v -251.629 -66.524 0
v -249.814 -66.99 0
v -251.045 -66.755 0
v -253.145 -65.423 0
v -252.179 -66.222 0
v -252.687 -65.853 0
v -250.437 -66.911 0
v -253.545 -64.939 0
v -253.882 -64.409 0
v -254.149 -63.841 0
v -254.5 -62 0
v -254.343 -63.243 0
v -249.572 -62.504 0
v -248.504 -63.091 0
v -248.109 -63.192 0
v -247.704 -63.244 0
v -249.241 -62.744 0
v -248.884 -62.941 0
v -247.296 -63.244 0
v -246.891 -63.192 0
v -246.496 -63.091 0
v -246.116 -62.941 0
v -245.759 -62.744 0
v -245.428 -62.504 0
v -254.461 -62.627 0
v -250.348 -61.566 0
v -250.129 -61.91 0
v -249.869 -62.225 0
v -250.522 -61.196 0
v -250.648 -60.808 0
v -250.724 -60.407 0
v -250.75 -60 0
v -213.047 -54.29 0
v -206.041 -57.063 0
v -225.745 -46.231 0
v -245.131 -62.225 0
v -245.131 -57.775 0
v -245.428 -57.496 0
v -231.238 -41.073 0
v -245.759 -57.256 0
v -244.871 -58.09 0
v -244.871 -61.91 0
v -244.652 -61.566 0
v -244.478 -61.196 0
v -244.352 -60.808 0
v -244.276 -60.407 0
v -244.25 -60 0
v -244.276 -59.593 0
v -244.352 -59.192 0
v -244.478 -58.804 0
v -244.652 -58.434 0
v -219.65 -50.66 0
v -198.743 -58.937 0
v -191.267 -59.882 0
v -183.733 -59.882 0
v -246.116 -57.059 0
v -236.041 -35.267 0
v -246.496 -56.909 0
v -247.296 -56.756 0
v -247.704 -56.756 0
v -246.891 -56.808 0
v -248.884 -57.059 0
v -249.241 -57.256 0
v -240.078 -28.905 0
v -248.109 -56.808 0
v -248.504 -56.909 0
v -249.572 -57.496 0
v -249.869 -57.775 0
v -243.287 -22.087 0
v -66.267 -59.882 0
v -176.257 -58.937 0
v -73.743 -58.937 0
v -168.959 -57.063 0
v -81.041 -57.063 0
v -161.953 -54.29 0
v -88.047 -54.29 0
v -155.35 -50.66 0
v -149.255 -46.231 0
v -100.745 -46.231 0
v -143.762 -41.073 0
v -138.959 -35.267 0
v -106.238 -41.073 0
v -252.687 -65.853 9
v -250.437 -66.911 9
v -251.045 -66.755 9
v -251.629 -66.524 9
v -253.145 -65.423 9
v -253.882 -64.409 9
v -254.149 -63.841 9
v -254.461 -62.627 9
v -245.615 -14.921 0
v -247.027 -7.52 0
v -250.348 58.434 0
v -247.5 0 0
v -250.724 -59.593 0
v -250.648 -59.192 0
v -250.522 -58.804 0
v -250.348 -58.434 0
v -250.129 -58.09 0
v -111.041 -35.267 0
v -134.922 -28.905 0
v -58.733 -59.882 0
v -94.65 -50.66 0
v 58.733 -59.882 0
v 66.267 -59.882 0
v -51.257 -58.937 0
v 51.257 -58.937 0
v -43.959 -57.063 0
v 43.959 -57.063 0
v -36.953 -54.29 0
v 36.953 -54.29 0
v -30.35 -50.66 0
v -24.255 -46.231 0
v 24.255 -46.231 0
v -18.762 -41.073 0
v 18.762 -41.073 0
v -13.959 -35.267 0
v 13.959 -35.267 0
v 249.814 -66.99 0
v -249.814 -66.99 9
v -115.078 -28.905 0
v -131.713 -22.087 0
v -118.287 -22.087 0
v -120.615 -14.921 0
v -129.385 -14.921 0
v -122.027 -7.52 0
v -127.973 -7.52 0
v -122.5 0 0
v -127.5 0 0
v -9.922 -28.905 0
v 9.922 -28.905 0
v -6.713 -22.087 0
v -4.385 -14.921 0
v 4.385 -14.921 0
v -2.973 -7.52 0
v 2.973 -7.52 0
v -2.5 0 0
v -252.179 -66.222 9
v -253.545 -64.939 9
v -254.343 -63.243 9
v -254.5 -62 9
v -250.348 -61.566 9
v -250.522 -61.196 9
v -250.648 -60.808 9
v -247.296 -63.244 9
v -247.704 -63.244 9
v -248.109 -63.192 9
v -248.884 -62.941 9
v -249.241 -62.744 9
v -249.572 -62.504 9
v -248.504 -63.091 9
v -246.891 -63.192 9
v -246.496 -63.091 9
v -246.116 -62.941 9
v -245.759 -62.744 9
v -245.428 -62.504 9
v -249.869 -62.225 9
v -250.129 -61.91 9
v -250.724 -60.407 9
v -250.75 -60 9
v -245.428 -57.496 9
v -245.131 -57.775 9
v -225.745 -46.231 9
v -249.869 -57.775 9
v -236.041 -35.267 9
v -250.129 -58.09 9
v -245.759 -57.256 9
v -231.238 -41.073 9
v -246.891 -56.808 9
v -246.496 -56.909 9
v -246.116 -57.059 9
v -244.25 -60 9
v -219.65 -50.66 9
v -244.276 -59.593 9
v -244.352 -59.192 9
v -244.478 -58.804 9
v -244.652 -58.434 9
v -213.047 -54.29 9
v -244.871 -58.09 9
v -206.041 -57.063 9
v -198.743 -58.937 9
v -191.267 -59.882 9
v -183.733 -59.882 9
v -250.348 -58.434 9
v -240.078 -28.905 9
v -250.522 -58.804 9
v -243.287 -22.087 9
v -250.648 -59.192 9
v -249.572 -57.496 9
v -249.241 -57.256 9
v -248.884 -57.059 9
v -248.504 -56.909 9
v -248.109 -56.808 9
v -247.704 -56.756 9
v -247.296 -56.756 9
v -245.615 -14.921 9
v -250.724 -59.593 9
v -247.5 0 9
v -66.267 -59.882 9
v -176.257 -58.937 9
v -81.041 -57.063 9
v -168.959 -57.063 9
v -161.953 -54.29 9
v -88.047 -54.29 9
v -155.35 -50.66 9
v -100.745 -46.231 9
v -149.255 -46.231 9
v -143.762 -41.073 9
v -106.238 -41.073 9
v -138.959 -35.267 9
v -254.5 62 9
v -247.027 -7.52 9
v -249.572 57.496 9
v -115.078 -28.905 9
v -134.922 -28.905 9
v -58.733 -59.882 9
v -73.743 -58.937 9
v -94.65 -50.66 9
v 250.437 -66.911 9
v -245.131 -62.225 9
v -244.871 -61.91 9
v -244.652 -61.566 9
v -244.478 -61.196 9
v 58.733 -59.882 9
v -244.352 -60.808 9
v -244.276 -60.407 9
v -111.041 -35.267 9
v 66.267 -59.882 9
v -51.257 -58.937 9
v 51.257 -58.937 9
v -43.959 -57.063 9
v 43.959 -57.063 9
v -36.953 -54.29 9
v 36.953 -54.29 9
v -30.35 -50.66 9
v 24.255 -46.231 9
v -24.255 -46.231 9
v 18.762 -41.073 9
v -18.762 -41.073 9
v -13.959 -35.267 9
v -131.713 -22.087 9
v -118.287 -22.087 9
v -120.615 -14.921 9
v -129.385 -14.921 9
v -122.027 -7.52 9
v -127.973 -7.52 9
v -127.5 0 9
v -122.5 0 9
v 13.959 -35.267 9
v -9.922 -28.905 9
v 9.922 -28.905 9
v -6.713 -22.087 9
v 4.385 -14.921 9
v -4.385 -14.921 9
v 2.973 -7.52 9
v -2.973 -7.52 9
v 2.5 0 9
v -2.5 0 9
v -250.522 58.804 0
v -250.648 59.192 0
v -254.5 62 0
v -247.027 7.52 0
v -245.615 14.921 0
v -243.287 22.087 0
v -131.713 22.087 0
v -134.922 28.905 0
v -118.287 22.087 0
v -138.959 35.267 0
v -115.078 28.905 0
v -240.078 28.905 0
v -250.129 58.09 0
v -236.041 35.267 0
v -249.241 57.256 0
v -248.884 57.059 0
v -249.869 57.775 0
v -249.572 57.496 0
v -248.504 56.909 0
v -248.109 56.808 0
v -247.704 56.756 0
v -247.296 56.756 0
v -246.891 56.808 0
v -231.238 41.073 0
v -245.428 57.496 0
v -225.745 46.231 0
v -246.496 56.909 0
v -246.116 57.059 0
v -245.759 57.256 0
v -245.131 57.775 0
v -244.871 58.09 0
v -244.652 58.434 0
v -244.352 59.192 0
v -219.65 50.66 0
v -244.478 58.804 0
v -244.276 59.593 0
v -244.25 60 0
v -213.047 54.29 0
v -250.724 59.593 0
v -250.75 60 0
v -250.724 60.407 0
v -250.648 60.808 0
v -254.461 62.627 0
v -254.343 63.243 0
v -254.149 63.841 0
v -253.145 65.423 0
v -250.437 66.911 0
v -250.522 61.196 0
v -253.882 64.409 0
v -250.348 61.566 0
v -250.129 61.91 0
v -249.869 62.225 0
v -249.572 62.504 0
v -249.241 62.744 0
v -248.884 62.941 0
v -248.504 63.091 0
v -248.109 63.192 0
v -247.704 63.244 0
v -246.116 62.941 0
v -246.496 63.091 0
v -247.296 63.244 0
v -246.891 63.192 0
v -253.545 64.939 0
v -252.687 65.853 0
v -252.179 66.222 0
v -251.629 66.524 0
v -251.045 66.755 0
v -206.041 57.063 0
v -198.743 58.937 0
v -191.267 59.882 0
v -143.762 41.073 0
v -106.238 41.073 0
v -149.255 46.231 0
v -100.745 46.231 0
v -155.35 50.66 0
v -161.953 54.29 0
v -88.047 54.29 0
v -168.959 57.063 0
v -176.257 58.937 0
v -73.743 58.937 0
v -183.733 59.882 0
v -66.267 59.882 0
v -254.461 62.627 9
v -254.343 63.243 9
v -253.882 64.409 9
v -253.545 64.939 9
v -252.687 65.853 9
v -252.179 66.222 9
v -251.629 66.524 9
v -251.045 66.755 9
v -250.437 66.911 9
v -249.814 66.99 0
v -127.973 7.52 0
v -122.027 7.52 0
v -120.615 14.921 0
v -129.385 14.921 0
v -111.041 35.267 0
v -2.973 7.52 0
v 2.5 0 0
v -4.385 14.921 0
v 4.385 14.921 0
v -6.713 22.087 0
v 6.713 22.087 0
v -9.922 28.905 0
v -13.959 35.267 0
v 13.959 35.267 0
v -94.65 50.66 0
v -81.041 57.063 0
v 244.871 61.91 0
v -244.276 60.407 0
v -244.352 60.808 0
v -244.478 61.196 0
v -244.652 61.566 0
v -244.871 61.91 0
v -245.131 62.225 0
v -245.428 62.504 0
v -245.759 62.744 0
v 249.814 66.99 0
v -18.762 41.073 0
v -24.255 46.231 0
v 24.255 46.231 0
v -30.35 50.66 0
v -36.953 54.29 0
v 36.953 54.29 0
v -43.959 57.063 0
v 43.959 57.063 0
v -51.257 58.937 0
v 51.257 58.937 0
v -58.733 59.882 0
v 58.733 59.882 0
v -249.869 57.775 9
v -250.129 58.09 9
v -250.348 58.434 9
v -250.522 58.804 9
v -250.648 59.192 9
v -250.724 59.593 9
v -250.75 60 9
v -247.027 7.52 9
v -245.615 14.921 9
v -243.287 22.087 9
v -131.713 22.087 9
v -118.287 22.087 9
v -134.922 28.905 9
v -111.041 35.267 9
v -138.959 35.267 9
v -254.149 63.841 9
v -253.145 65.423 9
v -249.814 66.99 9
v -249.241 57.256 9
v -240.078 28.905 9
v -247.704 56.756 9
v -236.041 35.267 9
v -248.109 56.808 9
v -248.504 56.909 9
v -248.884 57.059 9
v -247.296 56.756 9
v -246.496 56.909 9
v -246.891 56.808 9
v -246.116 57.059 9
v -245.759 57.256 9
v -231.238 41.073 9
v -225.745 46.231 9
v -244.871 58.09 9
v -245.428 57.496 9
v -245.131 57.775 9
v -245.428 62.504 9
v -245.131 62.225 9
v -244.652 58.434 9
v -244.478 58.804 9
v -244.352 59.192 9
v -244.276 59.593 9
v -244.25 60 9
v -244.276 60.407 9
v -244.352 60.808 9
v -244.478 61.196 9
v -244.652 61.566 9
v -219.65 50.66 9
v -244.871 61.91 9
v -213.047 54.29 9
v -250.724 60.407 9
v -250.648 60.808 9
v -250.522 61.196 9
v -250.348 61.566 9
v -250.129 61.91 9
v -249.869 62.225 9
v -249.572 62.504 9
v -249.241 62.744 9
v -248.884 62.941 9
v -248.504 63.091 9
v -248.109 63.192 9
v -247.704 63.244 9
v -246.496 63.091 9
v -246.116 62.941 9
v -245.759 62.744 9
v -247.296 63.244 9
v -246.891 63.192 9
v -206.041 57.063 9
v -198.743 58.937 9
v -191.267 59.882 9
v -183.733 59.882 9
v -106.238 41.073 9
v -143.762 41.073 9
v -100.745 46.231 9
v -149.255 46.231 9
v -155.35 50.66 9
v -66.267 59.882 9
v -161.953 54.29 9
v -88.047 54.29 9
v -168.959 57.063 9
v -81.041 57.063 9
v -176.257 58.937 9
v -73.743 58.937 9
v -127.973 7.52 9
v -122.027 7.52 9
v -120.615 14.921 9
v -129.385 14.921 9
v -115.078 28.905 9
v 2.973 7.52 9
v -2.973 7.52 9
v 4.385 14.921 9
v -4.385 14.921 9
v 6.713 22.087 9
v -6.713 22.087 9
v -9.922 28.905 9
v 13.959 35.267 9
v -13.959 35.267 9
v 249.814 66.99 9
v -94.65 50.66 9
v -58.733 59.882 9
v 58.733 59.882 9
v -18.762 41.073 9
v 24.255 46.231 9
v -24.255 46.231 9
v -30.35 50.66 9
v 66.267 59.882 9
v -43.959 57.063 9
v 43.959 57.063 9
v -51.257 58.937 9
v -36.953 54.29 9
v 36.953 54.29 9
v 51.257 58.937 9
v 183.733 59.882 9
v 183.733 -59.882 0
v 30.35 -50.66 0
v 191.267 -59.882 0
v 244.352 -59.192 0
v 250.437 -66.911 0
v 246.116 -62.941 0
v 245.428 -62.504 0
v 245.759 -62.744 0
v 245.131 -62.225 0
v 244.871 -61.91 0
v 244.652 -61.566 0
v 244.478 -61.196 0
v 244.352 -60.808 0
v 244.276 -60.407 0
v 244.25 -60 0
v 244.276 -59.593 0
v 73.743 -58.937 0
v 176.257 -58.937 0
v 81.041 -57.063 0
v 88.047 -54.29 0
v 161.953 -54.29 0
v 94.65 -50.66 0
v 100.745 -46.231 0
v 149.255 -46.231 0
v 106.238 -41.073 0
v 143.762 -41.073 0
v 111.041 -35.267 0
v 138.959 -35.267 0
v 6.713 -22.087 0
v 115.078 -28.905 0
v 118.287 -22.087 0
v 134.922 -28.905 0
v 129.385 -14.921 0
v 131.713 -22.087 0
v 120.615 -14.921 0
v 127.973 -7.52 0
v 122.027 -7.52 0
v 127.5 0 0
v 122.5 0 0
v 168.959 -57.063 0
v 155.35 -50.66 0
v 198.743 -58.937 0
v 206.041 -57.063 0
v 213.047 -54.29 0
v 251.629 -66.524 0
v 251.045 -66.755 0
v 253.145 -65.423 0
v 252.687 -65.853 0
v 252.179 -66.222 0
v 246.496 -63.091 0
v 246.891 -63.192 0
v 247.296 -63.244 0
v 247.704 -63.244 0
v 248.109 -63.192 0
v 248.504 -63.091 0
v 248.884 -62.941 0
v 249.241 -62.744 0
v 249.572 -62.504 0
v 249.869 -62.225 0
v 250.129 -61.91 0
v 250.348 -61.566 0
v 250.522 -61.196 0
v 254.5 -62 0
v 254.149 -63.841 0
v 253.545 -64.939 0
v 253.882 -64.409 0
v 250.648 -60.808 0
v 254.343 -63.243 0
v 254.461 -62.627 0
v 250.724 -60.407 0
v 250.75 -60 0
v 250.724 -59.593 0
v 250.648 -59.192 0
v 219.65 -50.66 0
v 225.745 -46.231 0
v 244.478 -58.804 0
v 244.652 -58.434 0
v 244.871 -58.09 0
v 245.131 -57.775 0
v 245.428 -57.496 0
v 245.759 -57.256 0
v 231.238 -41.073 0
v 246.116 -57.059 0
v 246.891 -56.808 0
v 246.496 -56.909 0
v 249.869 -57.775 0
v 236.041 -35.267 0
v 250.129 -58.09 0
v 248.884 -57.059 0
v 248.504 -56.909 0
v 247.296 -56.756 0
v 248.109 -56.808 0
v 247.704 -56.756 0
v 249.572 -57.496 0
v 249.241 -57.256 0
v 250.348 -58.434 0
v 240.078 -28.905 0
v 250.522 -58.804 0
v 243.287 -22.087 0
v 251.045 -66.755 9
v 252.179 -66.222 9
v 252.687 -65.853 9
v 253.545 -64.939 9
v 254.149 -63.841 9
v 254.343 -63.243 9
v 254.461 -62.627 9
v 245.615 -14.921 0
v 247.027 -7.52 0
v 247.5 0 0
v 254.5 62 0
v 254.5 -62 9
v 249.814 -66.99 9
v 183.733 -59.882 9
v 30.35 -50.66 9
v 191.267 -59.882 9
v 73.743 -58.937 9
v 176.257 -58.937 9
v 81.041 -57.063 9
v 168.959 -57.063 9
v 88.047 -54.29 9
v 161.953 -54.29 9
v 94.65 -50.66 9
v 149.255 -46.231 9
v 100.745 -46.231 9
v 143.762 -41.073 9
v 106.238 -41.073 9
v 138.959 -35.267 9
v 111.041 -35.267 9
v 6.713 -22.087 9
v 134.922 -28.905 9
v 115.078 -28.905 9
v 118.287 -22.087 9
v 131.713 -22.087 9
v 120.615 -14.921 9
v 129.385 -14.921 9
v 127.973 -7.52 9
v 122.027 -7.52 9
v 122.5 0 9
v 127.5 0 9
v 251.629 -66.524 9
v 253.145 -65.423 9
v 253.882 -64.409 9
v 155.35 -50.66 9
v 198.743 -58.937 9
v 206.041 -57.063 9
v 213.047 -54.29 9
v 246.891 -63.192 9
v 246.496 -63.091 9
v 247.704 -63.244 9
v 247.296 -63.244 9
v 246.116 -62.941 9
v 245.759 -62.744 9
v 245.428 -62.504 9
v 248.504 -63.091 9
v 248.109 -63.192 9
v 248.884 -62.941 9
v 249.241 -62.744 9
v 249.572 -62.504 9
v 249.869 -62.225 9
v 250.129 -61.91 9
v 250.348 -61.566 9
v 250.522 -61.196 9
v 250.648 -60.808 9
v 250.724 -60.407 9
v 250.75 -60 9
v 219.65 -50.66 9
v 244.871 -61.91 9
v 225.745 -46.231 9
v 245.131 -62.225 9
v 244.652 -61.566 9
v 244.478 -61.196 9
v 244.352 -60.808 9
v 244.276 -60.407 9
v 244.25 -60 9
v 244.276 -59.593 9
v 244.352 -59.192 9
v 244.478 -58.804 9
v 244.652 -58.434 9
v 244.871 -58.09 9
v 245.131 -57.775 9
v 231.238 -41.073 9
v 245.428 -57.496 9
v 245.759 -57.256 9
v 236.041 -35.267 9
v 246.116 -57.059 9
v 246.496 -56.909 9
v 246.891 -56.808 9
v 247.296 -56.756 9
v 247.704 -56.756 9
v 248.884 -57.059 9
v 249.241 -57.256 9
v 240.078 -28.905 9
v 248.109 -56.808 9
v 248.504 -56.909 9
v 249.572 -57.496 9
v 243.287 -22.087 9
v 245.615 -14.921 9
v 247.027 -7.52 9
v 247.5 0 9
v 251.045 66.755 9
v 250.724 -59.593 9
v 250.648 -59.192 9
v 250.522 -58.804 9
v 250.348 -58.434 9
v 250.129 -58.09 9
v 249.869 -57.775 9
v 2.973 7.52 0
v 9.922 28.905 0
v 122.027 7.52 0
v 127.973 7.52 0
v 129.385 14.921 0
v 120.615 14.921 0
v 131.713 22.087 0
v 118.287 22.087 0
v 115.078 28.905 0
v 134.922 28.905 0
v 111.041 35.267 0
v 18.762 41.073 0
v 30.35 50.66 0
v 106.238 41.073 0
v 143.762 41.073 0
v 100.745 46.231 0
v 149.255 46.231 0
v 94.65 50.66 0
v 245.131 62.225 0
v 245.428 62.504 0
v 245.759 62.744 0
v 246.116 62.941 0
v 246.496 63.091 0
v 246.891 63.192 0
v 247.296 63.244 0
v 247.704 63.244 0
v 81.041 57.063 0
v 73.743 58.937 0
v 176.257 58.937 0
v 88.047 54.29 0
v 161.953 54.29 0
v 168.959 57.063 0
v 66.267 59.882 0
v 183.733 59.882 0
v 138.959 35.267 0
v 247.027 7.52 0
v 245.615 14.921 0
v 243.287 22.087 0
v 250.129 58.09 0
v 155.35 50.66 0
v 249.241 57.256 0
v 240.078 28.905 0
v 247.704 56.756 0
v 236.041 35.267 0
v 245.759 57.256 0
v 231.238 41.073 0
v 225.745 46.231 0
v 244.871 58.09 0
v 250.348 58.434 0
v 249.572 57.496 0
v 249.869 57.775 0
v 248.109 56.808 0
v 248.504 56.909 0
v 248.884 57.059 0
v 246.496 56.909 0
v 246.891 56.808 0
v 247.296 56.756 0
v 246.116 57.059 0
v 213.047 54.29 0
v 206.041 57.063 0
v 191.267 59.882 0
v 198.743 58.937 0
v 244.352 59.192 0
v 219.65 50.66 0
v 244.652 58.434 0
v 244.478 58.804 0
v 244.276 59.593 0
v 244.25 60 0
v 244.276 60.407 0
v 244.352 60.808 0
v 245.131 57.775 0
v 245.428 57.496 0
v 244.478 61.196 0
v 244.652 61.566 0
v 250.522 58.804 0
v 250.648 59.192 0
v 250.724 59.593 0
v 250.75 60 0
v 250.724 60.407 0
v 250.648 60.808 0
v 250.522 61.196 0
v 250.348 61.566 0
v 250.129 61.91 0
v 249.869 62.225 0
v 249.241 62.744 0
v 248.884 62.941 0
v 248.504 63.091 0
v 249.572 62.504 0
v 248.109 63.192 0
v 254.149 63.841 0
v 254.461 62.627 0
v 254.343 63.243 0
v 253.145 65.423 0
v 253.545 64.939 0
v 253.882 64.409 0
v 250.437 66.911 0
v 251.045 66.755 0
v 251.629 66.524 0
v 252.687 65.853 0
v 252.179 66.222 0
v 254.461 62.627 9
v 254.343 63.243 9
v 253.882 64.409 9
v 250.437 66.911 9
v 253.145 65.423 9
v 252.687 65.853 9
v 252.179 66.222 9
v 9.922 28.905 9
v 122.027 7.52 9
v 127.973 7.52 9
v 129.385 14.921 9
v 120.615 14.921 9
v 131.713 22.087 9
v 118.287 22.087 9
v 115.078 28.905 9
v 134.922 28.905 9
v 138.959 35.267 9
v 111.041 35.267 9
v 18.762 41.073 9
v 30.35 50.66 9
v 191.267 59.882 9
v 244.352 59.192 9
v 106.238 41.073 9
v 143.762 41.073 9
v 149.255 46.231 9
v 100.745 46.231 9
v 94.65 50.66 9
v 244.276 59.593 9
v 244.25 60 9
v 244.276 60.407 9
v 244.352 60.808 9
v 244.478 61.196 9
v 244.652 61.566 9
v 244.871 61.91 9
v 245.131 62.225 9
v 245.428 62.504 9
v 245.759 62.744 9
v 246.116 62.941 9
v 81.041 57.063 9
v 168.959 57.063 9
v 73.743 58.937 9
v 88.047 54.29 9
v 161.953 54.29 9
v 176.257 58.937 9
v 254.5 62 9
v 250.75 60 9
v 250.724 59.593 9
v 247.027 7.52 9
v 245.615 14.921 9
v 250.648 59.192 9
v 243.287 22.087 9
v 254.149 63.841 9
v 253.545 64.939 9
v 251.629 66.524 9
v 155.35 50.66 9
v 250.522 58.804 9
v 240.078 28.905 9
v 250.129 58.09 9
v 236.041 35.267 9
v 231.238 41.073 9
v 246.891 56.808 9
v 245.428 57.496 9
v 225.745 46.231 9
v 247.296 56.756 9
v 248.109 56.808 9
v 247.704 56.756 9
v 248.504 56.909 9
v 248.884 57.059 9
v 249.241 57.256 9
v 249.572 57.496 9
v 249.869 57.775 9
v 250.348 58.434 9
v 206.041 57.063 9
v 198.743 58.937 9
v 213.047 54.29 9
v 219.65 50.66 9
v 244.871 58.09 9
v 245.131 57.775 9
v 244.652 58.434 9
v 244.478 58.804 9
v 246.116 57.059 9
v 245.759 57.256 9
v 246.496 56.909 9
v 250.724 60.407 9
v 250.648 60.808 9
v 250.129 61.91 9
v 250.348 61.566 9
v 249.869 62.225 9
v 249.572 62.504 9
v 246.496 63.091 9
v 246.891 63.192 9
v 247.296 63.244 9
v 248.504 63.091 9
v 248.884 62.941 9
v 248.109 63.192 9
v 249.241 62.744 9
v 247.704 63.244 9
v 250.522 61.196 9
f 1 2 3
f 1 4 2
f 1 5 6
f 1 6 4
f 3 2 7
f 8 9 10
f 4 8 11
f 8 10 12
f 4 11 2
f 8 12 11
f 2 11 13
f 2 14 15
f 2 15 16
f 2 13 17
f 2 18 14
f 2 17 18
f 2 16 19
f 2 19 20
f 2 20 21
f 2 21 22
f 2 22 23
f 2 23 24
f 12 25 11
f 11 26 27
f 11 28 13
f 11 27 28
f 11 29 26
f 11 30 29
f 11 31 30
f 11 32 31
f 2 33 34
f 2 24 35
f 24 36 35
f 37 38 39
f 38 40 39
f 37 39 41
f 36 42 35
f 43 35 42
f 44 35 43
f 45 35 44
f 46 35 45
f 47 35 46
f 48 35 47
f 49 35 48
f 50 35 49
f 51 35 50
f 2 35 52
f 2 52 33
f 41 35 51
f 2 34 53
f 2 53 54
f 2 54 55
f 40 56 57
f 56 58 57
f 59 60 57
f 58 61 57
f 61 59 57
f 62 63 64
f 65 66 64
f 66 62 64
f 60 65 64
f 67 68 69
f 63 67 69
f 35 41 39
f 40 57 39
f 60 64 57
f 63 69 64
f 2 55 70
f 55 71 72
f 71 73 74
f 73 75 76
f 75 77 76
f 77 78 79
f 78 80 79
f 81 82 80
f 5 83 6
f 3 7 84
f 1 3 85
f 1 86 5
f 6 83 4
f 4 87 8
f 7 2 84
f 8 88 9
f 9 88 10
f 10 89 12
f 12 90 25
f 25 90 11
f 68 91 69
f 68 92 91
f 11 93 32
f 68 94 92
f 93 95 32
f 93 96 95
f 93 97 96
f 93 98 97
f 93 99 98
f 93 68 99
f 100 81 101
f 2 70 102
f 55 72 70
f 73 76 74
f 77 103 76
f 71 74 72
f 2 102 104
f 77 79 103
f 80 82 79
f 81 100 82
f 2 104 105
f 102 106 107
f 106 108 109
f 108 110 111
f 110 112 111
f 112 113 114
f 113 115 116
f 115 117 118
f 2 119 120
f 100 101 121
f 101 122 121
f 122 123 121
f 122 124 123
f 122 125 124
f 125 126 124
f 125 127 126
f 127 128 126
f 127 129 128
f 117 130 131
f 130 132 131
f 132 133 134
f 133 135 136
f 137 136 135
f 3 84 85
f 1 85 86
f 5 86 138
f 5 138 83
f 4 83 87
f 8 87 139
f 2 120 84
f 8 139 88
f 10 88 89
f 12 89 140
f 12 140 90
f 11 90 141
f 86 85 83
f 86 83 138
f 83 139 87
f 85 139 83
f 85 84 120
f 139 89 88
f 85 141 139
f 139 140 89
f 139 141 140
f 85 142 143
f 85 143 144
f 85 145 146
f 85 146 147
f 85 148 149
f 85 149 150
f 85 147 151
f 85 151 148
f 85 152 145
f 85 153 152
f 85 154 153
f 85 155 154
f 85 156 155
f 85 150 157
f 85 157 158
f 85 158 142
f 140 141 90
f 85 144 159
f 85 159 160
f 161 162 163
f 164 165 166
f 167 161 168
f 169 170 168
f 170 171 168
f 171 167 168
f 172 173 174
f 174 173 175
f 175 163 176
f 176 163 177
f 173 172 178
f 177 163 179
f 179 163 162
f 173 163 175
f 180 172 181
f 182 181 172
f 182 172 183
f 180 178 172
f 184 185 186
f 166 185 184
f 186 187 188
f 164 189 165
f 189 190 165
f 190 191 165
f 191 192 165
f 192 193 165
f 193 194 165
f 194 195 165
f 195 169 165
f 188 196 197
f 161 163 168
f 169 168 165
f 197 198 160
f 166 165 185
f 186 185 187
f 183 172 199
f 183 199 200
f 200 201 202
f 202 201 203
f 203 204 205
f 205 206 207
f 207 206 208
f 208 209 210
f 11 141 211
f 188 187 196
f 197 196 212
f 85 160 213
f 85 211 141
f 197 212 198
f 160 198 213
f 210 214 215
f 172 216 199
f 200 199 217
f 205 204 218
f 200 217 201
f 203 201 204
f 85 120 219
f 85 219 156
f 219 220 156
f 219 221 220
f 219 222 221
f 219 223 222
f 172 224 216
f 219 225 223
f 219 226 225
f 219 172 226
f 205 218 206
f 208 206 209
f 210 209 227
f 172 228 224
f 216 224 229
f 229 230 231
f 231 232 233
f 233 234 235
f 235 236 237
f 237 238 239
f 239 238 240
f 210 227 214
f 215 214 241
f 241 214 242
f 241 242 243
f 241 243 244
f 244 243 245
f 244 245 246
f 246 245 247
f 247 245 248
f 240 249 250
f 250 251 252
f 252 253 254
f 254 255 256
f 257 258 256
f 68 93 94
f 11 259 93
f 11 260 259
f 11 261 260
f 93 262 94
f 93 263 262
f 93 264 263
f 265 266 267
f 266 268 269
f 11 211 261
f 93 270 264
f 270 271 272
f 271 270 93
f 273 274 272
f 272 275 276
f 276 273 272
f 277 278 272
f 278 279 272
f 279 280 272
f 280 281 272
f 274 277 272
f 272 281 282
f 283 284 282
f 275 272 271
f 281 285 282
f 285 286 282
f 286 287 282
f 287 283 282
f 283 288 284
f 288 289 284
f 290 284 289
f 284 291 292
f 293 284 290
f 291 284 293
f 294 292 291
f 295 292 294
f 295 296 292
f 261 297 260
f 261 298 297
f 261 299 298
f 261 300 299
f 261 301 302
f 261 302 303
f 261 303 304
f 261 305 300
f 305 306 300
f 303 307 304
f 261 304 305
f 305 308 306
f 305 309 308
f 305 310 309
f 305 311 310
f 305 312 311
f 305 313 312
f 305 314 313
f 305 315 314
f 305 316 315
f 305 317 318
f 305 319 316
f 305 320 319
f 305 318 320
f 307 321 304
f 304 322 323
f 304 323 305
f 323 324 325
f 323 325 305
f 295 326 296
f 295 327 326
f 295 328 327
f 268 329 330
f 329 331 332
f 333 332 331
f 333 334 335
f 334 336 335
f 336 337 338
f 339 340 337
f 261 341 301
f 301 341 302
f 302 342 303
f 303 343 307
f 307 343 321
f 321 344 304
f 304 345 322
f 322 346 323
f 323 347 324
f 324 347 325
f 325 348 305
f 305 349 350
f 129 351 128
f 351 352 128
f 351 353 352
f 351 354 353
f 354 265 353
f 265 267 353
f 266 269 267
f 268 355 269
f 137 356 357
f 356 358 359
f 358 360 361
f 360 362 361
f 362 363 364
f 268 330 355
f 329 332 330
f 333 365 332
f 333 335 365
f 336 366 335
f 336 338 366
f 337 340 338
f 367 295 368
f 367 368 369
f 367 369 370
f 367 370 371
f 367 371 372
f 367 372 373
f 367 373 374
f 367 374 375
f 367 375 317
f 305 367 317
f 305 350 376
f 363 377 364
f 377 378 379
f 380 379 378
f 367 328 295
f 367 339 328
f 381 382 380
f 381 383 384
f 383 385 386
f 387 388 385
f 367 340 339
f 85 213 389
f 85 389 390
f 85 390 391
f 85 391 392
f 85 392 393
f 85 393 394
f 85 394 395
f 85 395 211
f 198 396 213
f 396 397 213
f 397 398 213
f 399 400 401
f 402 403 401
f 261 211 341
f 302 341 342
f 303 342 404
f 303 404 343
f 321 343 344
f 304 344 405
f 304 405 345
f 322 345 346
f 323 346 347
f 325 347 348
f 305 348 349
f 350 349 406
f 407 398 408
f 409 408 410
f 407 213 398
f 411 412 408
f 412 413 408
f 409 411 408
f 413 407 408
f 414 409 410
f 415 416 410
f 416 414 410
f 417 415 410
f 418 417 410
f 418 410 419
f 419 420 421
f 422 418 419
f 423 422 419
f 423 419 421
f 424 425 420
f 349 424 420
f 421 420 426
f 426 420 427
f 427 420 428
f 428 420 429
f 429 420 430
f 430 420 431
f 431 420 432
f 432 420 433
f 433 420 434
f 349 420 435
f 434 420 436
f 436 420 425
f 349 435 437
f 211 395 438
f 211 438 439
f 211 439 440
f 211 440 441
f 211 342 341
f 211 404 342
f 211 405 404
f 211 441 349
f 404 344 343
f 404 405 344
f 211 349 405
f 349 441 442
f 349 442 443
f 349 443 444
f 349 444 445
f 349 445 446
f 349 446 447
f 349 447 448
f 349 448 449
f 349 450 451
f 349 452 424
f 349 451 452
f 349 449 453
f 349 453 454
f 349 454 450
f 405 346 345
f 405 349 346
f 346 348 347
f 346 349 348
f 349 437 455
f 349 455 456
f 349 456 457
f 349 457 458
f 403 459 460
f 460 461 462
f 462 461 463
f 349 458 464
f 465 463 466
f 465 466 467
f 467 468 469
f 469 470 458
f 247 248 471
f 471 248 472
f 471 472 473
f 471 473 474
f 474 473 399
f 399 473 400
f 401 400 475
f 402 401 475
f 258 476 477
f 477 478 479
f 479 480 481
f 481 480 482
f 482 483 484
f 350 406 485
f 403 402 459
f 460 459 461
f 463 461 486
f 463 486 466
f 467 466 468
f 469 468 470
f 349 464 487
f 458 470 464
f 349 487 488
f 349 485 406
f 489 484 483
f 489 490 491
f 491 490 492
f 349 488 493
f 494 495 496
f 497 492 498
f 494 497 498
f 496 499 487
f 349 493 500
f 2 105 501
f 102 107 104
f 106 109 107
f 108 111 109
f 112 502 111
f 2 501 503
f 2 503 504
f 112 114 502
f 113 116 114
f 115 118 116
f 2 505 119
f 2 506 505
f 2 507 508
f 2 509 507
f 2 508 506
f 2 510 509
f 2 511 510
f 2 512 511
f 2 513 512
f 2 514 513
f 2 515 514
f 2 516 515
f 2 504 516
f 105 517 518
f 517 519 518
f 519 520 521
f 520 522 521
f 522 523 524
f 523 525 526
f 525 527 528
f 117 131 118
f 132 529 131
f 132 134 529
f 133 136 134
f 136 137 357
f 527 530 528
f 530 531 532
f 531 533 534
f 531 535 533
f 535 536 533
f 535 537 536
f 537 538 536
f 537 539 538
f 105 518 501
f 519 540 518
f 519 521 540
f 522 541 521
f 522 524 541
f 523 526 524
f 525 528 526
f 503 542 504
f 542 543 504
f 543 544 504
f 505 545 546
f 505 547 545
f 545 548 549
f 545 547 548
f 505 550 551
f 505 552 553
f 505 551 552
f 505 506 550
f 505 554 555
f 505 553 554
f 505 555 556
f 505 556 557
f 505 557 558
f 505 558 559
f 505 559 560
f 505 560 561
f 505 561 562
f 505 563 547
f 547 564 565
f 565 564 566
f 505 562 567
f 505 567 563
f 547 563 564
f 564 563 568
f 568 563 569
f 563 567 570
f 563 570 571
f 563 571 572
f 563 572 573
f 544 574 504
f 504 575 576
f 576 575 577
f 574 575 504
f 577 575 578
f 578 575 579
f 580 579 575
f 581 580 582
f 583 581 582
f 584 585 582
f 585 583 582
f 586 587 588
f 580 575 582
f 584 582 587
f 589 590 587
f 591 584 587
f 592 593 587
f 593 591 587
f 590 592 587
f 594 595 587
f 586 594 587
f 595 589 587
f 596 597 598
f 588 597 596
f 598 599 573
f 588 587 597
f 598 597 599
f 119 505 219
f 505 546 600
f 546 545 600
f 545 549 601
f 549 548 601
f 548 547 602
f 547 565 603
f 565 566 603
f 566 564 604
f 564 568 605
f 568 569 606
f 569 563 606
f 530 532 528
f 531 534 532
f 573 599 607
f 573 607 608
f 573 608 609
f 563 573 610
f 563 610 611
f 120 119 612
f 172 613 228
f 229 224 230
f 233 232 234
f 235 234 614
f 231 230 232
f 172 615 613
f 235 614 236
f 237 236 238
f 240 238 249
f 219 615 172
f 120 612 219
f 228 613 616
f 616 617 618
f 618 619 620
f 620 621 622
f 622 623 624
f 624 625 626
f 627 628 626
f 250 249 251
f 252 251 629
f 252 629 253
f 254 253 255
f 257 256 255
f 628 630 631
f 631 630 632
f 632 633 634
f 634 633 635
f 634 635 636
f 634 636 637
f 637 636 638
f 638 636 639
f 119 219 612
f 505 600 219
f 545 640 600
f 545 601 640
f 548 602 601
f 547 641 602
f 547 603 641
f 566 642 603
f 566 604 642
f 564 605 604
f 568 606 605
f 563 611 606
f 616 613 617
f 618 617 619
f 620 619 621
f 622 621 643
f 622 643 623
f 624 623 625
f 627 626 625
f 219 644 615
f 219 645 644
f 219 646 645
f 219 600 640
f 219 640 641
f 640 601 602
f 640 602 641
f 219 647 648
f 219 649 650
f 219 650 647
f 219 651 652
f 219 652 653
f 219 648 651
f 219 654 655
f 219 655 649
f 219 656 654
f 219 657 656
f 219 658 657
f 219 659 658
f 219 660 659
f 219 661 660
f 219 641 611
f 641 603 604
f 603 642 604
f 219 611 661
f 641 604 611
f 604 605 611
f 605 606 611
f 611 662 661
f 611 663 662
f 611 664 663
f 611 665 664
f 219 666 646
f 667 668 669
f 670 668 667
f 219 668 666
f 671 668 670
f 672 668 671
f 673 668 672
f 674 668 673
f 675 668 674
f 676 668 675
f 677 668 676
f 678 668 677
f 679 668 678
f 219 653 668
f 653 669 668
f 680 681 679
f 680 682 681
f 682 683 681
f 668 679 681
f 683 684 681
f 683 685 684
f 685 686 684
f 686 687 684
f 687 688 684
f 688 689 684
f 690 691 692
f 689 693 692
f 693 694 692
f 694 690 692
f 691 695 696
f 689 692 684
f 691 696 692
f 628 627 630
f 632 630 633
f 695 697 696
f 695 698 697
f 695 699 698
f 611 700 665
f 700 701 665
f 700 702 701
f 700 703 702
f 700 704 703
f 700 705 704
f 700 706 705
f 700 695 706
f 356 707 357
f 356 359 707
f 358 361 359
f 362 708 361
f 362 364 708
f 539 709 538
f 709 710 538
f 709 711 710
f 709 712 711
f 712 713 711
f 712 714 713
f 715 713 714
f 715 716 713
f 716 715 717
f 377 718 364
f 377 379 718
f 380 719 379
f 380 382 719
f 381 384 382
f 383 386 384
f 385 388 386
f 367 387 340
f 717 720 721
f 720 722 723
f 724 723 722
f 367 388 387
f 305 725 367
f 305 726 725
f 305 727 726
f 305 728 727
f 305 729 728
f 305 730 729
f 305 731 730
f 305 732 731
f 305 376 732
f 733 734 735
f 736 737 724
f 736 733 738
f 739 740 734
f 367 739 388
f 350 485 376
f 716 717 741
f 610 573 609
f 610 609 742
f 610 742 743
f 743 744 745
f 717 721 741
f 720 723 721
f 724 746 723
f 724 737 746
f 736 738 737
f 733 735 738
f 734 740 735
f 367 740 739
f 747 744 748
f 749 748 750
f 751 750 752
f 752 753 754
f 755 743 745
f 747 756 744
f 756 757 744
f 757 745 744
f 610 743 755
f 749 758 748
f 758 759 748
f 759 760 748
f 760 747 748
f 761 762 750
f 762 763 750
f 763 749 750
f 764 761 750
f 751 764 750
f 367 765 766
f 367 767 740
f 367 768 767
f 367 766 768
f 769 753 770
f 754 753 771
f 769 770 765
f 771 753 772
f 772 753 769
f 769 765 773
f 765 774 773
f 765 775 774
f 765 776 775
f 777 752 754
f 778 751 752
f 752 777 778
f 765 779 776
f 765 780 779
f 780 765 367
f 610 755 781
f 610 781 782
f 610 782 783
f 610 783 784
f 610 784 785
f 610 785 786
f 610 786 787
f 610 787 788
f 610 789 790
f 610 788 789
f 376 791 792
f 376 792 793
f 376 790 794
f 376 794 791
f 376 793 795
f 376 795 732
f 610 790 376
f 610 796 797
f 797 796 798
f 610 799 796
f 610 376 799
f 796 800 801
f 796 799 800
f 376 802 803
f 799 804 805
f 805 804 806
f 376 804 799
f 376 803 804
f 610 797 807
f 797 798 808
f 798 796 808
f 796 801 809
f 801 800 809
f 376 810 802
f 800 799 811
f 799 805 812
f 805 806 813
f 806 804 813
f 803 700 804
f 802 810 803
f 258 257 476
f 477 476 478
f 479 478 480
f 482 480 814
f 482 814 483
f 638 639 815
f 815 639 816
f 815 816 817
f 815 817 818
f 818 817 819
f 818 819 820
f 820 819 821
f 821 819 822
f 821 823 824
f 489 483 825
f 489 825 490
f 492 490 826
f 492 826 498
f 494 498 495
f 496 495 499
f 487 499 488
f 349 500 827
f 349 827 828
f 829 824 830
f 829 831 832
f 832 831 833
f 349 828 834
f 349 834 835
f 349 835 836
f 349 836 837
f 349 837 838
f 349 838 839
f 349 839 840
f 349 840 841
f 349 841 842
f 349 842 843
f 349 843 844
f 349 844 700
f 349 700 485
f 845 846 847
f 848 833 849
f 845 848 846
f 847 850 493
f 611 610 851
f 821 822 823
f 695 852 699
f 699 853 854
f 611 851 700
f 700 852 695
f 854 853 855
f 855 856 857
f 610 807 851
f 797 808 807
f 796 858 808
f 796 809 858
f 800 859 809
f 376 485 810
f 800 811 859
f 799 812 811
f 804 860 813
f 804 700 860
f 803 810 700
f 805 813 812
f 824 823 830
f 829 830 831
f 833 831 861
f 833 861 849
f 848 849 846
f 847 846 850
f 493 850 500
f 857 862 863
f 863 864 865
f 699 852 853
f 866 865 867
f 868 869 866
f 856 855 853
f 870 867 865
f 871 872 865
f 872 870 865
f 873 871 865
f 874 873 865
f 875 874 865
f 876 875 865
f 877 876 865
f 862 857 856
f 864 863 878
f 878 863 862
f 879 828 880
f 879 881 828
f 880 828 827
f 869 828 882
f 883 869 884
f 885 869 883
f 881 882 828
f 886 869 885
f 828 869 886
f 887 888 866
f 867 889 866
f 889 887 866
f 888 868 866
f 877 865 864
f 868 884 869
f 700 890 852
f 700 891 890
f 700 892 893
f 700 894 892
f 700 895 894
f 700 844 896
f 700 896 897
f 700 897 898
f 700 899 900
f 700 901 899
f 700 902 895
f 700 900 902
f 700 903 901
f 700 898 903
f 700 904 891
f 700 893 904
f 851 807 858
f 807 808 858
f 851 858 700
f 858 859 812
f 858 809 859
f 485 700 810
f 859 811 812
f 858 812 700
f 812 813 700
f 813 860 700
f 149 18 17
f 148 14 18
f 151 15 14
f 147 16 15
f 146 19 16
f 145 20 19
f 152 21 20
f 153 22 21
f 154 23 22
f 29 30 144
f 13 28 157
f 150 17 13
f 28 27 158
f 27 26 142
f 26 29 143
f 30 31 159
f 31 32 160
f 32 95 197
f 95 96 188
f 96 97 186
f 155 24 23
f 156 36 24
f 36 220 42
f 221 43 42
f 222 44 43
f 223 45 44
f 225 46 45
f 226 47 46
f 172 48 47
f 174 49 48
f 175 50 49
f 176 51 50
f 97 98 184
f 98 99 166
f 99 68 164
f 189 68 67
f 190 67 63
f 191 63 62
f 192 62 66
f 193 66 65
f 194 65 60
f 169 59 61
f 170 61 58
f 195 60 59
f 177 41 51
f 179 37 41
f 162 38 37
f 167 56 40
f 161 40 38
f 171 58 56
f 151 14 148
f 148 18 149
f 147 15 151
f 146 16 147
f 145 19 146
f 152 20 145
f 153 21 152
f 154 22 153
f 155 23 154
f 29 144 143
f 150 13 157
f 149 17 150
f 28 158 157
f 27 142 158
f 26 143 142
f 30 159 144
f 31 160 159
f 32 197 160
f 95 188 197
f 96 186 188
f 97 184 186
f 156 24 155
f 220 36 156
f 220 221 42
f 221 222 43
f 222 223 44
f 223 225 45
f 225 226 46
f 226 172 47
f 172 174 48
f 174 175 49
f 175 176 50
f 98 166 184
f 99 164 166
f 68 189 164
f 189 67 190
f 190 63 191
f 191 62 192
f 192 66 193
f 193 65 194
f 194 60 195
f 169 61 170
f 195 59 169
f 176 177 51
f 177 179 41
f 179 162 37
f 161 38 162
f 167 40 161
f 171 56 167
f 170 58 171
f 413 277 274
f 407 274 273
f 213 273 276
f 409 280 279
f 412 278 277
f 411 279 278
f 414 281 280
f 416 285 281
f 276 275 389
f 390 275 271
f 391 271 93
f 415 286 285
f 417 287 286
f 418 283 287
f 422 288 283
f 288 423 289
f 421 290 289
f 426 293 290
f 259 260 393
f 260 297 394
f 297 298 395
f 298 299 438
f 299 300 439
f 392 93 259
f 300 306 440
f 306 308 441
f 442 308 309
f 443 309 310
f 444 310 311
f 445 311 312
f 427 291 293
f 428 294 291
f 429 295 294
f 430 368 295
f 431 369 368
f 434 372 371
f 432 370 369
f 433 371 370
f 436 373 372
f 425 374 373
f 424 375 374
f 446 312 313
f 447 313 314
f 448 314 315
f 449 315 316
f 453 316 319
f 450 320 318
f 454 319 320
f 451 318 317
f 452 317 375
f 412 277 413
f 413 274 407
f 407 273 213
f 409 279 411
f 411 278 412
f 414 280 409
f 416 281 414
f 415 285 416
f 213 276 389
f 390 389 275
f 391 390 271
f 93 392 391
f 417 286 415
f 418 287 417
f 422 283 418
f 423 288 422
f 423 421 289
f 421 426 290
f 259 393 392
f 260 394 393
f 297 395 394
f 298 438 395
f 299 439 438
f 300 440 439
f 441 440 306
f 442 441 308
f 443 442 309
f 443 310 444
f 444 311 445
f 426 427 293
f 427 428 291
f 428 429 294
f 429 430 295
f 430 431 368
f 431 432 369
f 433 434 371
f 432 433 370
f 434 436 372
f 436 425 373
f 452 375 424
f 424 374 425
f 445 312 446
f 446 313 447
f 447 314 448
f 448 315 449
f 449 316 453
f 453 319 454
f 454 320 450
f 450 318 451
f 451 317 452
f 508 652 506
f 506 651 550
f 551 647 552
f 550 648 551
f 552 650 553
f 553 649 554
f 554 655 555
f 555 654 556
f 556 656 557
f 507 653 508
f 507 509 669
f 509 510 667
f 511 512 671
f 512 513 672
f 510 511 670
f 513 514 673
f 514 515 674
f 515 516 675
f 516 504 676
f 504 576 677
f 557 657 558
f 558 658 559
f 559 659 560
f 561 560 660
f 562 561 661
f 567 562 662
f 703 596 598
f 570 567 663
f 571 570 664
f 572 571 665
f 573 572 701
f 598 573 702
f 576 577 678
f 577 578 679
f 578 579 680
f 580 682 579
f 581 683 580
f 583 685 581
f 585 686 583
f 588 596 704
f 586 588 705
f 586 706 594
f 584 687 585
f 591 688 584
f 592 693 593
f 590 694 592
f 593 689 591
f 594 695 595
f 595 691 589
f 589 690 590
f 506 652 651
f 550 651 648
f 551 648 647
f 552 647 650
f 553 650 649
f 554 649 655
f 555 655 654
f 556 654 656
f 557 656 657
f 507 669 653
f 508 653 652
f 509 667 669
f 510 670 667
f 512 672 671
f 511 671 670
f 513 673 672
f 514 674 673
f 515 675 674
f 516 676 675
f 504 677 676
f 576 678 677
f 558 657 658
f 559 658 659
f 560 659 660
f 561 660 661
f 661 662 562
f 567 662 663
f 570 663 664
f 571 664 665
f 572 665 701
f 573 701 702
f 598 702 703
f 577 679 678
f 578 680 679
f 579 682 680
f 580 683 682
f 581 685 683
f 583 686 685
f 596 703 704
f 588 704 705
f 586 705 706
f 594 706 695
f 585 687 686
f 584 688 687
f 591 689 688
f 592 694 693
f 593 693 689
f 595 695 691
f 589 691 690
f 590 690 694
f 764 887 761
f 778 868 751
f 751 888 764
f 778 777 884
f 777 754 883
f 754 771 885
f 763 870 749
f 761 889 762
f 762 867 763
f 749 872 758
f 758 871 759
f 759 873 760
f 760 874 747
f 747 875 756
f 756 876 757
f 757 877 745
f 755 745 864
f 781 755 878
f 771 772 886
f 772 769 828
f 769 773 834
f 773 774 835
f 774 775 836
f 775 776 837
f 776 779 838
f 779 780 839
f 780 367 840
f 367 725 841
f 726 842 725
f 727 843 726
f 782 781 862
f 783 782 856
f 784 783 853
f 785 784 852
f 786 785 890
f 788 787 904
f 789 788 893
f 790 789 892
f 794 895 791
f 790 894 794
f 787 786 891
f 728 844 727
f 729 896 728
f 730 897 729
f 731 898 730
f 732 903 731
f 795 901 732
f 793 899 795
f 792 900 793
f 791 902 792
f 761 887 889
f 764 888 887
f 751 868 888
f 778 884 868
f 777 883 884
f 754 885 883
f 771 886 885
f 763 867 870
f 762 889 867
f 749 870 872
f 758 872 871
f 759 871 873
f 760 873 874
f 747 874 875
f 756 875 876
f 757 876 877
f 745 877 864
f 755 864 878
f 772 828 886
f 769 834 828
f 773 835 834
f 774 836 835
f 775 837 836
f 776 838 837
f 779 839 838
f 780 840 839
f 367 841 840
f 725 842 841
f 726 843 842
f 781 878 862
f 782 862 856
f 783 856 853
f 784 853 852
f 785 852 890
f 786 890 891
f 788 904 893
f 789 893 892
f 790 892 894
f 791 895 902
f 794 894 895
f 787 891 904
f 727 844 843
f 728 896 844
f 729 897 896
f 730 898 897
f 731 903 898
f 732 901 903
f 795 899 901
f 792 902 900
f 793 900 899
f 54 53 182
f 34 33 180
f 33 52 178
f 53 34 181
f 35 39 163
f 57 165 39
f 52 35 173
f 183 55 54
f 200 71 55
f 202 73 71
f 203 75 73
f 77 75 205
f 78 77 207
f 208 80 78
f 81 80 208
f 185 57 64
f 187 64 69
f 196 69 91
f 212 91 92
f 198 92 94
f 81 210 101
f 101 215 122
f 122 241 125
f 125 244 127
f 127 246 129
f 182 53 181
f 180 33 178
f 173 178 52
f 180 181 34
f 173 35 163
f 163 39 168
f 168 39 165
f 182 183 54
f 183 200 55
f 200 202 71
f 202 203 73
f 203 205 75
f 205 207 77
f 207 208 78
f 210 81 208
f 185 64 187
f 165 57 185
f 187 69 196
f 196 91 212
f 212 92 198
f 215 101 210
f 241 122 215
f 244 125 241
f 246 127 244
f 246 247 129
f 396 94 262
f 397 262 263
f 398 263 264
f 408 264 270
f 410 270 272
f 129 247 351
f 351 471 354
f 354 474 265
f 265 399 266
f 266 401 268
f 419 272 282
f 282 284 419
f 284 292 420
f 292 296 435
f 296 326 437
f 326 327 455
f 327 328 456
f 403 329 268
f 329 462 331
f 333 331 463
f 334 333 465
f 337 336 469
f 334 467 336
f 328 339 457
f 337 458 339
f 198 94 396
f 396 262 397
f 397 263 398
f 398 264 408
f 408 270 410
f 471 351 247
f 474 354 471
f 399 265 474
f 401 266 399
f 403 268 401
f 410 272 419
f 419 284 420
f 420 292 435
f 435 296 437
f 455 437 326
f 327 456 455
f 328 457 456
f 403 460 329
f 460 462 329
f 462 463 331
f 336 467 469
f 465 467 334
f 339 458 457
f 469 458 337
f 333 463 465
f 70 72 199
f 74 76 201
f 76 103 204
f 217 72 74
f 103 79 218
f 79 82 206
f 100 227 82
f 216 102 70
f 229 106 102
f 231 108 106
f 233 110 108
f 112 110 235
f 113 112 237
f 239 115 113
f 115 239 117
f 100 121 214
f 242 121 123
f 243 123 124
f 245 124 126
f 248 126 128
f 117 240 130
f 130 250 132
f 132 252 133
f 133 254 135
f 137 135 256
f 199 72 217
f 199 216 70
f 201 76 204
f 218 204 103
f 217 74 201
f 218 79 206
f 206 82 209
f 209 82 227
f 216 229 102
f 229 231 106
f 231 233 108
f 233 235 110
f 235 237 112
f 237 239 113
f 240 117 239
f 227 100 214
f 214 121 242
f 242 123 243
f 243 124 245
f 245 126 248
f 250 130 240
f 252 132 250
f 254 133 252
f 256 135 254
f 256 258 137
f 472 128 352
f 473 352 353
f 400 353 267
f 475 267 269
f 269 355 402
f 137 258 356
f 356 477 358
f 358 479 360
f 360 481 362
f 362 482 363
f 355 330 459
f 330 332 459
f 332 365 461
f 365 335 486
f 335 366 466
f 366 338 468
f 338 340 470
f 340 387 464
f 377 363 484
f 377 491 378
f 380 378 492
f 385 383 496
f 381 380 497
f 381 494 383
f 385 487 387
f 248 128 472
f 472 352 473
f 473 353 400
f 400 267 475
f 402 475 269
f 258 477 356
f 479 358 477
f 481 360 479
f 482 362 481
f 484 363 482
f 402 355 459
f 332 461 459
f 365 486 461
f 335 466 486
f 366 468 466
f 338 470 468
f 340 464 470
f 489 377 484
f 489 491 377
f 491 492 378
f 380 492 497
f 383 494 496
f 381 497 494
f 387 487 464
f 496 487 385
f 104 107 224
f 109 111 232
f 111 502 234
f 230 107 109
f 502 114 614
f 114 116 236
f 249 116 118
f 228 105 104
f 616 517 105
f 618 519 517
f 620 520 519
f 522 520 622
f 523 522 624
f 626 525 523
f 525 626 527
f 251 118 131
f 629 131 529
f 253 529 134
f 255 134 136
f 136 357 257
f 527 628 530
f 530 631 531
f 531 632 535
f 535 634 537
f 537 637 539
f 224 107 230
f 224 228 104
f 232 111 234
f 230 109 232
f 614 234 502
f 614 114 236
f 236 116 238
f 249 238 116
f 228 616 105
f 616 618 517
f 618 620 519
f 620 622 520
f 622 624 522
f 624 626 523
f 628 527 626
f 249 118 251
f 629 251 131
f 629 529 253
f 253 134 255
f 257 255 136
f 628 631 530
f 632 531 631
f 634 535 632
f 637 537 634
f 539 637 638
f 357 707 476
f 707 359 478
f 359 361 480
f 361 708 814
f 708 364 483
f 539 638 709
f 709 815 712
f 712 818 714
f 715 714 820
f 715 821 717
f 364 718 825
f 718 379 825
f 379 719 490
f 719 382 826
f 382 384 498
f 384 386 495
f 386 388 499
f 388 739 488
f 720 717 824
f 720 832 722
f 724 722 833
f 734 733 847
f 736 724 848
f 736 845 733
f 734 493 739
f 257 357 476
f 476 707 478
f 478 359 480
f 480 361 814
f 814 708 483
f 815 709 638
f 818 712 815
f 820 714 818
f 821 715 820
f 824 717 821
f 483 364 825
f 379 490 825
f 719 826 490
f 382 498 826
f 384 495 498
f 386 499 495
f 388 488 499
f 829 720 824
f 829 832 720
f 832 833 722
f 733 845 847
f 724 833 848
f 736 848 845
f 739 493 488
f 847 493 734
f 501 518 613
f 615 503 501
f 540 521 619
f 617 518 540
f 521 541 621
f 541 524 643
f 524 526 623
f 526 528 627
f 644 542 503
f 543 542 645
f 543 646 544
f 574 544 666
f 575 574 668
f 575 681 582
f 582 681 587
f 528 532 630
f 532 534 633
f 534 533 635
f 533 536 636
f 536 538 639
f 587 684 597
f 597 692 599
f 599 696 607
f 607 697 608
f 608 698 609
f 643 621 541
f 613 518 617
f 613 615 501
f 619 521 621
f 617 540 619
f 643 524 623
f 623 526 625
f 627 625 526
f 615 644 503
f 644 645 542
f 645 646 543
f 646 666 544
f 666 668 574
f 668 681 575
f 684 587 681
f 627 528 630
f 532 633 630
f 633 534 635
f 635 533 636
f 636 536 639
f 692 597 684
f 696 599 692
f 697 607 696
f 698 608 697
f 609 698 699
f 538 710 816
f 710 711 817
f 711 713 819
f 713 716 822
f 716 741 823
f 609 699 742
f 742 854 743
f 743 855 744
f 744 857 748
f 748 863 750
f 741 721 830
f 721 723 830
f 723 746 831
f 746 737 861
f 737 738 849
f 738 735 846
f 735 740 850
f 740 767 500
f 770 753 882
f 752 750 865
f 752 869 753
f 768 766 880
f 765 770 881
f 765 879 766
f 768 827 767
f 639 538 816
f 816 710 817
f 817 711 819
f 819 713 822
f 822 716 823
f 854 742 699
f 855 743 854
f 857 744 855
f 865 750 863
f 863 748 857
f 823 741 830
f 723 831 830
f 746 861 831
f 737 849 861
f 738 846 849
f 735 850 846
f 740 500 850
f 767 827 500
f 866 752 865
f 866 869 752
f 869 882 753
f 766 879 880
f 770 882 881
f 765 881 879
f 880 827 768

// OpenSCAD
$fn = 50;

difference() {
	union() {
		hull() {
			translate(v = [-249.5, 62.0, 0]) {
				cylinder(h = 9, r = 5);
			}
			translate(v = [249.5, 62.0, 0]) {
				cylinder(h = 9, r = 5);
			}
			translate(v = [-249.5, -62.0, 0]) {
				cylinder(h = 9, r = 5);
			}
			translate(v = [249.5, -62.0, 0]) {
				cylinder(h = 9, r = 5);
			}
		}
	}
	union() {
		translate(v = [-247.5, -60.0, -100.0]) {
			cylinder(h = 200, r = 3.25);
		}
		translate(v = [-247.5, 60.0, -100.0]) {
			cylinder(h = 200, r = 3.25);
		}
		translate(v = [247.5, -60.0, -100.0]) {
			cylinder(h = 200, r = 3.25);
		}
		translate(v = [247.5, 60.0, -100.0]) {
			cylinder(h = 200, r = 3.25);
		}
		translate(v = [-247.5, -60.0, -100.0]) {
			cylinder(h = 200, r = 1.8);
		}
		translate(v = [-247.5, 60.0, -100.0]) {
			cylinder(h = 200, r = 1.8);
		}
		translate(v = [247.5, -60.0, -100.0]) {
			cylinder(h = 200, r = 1.8);
		}
		translate(v = [247.5, 60.0, -100.0]) {
			cylinder(h = 200, r = 1.8);
		}
		translate(v = [-187.5, 0, 0.0]) {
			cylinder(h = 9, r = 60.0);
		}
		translate(v = [-62.5, 0, 0.0]) {
			cylinder(h = 9, r = 60.0);
		}
		translate(v = [62.5, 0, 0.0]) {
			cylinder(h = 9, r = 60.0);
		}
		translate(v = [187.5, 0, 0.0]) {
			cylinder(h = 9, r = 60.0);
		}
	}
}
